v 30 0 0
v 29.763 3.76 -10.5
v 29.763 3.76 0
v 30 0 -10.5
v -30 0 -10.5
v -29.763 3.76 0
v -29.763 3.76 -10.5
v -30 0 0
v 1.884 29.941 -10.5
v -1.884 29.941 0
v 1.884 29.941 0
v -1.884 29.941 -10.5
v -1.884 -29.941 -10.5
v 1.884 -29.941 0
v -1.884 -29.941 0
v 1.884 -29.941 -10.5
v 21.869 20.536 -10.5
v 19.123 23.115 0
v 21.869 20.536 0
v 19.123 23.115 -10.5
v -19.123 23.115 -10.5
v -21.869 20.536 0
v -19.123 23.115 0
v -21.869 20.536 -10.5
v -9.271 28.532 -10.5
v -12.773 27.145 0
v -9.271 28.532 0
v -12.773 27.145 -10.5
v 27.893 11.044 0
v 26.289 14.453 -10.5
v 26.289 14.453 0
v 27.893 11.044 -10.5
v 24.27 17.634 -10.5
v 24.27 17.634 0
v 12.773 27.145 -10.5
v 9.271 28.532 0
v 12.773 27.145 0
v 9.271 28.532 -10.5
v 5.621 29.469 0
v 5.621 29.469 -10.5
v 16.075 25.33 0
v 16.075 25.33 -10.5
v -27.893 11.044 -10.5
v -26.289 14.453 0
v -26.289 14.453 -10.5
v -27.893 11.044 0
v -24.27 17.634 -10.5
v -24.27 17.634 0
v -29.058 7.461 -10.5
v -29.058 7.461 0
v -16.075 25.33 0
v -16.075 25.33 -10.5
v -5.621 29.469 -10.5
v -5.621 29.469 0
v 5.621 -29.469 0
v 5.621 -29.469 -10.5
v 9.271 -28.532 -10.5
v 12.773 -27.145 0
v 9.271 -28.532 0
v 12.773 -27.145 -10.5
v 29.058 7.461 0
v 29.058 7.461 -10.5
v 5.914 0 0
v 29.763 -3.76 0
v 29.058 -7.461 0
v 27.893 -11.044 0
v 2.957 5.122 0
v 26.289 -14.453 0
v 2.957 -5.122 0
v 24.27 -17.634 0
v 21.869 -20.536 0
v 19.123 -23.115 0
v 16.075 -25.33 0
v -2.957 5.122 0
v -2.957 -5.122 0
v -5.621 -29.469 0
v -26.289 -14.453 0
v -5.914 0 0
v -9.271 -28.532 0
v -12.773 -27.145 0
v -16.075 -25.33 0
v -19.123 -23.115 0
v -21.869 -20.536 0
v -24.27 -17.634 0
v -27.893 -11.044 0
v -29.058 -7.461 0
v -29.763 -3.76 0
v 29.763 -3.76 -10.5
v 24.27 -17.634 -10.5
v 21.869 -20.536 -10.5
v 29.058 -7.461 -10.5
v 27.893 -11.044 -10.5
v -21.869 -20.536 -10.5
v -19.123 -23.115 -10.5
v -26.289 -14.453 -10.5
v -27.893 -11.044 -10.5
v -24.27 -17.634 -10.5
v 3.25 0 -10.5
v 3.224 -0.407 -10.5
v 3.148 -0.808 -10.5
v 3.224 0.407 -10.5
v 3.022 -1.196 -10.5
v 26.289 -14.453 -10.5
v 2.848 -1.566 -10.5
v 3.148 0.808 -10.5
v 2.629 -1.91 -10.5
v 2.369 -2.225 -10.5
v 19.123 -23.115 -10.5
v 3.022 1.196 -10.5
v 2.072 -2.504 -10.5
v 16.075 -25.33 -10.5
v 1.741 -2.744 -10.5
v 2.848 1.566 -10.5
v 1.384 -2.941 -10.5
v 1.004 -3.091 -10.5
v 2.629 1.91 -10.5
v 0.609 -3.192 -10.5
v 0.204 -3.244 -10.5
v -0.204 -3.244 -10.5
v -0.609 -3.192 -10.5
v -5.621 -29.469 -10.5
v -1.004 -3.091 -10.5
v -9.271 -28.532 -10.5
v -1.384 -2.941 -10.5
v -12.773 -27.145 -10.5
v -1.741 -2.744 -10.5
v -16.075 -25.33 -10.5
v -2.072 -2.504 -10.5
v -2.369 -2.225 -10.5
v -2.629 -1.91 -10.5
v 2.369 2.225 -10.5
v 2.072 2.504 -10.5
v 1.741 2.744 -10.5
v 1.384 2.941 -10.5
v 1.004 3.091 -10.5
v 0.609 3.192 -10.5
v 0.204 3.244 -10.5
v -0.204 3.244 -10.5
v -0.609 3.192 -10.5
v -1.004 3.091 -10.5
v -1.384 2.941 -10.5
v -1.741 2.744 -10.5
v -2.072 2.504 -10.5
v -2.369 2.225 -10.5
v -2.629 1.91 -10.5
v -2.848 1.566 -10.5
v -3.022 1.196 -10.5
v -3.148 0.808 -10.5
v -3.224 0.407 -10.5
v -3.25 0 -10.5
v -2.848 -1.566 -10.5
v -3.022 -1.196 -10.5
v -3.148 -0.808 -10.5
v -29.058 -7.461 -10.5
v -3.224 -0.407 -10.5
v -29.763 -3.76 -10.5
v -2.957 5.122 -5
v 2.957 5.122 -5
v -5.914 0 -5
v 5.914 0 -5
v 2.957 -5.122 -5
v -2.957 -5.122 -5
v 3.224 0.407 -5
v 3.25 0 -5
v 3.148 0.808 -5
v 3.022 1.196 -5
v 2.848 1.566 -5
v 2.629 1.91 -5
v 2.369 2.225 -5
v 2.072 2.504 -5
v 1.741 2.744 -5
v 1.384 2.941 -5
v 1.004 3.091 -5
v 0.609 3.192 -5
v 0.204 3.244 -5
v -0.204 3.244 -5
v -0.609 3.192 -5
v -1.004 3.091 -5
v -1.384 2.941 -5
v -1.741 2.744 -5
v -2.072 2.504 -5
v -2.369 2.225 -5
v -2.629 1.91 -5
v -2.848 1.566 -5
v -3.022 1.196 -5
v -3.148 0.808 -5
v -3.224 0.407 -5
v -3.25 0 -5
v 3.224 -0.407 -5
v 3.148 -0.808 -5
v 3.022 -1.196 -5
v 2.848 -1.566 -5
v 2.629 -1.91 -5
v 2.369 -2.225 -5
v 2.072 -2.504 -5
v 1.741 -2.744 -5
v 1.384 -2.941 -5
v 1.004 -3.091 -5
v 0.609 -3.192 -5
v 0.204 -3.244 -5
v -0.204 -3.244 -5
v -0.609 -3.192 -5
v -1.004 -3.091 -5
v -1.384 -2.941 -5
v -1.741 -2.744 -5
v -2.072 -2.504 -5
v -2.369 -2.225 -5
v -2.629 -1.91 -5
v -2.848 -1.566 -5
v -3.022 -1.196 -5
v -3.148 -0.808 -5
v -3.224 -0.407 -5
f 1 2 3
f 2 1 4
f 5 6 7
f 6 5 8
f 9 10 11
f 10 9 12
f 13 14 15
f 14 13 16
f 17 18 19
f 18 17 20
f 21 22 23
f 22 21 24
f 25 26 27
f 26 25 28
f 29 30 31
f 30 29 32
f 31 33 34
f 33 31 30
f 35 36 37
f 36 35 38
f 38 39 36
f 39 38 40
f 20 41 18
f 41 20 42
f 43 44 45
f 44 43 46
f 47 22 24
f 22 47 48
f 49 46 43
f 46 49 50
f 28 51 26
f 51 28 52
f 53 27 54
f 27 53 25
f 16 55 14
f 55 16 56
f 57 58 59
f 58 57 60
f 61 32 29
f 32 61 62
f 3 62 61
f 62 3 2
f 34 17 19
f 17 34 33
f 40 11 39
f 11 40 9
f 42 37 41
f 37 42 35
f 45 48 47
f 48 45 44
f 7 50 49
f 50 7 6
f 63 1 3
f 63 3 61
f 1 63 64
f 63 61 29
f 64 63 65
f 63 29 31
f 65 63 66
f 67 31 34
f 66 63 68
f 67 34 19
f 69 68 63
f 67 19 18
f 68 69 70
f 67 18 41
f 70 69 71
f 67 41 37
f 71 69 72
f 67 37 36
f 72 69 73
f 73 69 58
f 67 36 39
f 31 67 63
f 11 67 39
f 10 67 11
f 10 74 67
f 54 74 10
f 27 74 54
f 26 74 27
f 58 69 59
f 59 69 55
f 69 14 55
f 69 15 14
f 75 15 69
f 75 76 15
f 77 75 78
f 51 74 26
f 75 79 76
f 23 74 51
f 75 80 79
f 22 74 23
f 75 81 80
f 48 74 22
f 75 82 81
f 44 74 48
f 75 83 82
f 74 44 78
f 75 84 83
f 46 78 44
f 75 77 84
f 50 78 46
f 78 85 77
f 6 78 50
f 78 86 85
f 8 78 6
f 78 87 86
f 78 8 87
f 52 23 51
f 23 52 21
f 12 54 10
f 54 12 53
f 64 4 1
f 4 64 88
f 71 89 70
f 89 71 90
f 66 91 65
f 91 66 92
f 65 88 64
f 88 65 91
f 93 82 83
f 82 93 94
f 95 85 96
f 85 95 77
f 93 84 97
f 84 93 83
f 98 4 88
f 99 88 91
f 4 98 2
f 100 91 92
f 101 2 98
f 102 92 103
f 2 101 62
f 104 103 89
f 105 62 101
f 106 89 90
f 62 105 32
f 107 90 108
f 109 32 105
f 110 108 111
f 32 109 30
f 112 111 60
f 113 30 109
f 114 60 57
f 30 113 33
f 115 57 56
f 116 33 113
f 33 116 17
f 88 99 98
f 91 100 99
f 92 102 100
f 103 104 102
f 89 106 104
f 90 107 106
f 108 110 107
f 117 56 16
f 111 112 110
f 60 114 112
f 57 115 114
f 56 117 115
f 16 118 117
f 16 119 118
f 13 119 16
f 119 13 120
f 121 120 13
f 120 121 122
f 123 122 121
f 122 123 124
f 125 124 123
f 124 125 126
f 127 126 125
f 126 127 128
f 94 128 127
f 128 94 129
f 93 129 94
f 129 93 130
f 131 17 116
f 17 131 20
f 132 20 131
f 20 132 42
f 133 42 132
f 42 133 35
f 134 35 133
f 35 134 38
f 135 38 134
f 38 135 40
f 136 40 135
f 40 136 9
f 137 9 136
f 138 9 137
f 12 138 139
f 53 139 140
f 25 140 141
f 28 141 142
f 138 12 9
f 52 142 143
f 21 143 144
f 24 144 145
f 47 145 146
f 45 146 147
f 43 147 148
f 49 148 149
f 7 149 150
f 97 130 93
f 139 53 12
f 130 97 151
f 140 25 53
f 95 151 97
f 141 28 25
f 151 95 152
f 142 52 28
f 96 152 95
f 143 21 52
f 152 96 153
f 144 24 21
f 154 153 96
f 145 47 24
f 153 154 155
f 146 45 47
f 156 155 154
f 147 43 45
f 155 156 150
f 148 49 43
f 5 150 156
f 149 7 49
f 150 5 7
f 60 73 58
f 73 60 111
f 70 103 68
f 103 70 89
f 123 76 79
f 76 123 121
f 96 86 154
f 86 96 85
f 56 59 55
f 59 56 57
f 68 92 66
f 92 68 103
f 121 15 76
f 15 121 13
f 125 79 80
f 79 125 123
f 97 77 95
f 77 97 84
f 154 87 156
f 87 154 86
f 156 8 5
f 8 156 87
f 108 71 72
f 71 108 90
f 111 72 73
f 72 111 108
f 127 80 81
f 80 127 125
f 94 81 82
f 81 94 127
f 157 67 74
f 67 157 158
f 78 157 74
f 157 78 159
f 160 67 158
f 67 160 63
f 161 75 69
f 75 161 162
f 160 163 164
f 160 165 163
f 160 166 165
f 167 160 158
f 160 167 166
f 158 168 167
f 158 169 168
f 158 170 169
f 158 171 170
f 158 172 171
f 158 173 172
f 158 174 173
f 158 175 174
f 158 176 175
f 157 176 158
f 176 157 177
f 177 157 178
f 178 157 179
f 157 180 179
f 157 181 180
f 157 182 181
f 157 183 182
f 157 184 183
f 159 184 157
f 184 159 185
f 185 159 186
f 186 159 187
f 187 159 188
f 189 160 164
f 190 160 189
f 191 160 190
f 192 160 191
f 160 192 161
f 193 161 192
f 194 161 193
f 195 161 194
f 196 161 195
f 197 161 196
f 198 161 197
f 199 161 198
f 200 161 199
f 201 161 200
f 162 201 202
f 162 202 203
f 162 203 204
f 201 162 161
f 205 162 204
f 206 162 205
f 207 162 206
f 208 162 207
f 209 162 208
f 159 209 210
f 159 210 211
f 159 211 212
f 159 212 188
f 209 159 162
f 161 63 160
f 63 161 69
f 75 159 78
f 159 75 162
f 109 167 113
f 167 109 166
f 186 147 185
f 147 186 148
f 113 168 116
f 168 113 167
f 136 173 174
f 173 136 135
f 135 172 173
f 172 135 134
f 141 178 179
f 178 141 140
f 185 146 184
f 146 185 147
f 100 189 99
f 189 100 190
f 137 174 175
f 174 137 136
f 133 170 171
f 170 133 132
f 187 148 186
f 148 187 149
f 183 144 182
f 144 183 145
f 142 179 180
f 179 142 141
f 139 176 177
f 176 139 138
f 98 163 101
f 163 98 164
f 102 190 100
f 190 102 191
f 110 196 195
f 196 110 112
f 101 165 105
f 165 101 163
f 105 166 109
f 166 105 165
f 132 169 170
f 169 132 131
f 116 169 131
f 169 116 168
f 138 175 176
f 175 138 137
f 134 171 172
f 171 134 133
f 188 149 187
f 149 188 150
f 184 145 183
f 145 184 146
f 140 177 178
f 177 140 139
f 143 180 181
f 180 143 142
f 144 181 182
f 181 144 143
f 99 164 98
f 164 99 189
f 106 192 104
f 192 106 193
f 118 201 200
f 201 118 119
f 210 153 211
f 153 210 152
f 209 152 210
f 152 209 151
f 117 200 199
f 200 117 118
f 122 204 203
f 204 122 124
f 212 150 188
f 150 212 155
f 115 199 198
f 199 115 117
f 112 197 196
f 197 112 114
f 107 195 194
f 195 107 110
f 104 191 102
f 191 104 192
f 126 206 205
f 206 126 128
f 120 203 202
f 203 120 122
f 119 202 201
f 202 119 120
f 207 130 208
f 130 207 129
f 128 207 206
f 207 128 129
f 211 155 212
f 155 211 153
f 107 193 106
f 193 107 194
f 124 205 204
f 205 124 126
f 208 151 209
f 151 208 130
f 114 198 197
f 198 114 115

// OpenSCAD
$fn = 50;


difference() {
	union() {
		translate(v = [0, 0, -10.5000000000]) {
			cylinder(h = 10.5000000000, r = 30.0000000000);
		}
		translate(v = [0, 0, -12.0000000000]) {
			cylinder(h = 12, r = 2.8750000000);
		}
	}
	union() {
		translate(v = [0, 0, 0]) {
			rotate(a = [0, 0, 0]) {
				difference() {
					union() {
						translate(v = [0, 0, -5]) {
							linear_extrude(height = 5) {
								polygon(points = [[5.9142500000, 0.0000000000], [2.9571250000, 5.1218907443], [-2.9571250000, 5.1218907443], [-5.9142500000, 0.0000000000], [-2.9571250000, -5.1218907443], [2.9571250000, -5.1218907443]]);
							}
						}
					}
					union();
				}
			}
		}
		#translate(v = [0, 0, -100.0000000000]) {
			cylinder(h = 200, r = 3.2500000000);
		}
	}
}
